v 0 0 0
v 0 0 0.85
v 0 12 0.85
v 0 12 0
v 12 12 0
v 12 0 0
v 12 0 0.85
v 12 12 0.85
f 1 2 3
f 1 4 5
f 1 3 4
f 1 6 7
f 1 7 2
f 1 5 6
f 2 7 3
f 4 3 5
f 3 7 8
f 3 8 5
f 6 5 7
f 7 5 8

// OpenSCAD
/* Warning, this is a very basic generator with a lot of approximation 
input data : [VQFN, 2JC, 12x12x0.85mm, 138, , A, C04-25007A]
generated by com.zoubworld.electronics.cad.model3d.Basic
Date : Sun Feb 15 10:50:49 CET 2026
*/

//body
color("black")
translate([0,0,0])
cube([12.0,12.0,0.85], center=false);
